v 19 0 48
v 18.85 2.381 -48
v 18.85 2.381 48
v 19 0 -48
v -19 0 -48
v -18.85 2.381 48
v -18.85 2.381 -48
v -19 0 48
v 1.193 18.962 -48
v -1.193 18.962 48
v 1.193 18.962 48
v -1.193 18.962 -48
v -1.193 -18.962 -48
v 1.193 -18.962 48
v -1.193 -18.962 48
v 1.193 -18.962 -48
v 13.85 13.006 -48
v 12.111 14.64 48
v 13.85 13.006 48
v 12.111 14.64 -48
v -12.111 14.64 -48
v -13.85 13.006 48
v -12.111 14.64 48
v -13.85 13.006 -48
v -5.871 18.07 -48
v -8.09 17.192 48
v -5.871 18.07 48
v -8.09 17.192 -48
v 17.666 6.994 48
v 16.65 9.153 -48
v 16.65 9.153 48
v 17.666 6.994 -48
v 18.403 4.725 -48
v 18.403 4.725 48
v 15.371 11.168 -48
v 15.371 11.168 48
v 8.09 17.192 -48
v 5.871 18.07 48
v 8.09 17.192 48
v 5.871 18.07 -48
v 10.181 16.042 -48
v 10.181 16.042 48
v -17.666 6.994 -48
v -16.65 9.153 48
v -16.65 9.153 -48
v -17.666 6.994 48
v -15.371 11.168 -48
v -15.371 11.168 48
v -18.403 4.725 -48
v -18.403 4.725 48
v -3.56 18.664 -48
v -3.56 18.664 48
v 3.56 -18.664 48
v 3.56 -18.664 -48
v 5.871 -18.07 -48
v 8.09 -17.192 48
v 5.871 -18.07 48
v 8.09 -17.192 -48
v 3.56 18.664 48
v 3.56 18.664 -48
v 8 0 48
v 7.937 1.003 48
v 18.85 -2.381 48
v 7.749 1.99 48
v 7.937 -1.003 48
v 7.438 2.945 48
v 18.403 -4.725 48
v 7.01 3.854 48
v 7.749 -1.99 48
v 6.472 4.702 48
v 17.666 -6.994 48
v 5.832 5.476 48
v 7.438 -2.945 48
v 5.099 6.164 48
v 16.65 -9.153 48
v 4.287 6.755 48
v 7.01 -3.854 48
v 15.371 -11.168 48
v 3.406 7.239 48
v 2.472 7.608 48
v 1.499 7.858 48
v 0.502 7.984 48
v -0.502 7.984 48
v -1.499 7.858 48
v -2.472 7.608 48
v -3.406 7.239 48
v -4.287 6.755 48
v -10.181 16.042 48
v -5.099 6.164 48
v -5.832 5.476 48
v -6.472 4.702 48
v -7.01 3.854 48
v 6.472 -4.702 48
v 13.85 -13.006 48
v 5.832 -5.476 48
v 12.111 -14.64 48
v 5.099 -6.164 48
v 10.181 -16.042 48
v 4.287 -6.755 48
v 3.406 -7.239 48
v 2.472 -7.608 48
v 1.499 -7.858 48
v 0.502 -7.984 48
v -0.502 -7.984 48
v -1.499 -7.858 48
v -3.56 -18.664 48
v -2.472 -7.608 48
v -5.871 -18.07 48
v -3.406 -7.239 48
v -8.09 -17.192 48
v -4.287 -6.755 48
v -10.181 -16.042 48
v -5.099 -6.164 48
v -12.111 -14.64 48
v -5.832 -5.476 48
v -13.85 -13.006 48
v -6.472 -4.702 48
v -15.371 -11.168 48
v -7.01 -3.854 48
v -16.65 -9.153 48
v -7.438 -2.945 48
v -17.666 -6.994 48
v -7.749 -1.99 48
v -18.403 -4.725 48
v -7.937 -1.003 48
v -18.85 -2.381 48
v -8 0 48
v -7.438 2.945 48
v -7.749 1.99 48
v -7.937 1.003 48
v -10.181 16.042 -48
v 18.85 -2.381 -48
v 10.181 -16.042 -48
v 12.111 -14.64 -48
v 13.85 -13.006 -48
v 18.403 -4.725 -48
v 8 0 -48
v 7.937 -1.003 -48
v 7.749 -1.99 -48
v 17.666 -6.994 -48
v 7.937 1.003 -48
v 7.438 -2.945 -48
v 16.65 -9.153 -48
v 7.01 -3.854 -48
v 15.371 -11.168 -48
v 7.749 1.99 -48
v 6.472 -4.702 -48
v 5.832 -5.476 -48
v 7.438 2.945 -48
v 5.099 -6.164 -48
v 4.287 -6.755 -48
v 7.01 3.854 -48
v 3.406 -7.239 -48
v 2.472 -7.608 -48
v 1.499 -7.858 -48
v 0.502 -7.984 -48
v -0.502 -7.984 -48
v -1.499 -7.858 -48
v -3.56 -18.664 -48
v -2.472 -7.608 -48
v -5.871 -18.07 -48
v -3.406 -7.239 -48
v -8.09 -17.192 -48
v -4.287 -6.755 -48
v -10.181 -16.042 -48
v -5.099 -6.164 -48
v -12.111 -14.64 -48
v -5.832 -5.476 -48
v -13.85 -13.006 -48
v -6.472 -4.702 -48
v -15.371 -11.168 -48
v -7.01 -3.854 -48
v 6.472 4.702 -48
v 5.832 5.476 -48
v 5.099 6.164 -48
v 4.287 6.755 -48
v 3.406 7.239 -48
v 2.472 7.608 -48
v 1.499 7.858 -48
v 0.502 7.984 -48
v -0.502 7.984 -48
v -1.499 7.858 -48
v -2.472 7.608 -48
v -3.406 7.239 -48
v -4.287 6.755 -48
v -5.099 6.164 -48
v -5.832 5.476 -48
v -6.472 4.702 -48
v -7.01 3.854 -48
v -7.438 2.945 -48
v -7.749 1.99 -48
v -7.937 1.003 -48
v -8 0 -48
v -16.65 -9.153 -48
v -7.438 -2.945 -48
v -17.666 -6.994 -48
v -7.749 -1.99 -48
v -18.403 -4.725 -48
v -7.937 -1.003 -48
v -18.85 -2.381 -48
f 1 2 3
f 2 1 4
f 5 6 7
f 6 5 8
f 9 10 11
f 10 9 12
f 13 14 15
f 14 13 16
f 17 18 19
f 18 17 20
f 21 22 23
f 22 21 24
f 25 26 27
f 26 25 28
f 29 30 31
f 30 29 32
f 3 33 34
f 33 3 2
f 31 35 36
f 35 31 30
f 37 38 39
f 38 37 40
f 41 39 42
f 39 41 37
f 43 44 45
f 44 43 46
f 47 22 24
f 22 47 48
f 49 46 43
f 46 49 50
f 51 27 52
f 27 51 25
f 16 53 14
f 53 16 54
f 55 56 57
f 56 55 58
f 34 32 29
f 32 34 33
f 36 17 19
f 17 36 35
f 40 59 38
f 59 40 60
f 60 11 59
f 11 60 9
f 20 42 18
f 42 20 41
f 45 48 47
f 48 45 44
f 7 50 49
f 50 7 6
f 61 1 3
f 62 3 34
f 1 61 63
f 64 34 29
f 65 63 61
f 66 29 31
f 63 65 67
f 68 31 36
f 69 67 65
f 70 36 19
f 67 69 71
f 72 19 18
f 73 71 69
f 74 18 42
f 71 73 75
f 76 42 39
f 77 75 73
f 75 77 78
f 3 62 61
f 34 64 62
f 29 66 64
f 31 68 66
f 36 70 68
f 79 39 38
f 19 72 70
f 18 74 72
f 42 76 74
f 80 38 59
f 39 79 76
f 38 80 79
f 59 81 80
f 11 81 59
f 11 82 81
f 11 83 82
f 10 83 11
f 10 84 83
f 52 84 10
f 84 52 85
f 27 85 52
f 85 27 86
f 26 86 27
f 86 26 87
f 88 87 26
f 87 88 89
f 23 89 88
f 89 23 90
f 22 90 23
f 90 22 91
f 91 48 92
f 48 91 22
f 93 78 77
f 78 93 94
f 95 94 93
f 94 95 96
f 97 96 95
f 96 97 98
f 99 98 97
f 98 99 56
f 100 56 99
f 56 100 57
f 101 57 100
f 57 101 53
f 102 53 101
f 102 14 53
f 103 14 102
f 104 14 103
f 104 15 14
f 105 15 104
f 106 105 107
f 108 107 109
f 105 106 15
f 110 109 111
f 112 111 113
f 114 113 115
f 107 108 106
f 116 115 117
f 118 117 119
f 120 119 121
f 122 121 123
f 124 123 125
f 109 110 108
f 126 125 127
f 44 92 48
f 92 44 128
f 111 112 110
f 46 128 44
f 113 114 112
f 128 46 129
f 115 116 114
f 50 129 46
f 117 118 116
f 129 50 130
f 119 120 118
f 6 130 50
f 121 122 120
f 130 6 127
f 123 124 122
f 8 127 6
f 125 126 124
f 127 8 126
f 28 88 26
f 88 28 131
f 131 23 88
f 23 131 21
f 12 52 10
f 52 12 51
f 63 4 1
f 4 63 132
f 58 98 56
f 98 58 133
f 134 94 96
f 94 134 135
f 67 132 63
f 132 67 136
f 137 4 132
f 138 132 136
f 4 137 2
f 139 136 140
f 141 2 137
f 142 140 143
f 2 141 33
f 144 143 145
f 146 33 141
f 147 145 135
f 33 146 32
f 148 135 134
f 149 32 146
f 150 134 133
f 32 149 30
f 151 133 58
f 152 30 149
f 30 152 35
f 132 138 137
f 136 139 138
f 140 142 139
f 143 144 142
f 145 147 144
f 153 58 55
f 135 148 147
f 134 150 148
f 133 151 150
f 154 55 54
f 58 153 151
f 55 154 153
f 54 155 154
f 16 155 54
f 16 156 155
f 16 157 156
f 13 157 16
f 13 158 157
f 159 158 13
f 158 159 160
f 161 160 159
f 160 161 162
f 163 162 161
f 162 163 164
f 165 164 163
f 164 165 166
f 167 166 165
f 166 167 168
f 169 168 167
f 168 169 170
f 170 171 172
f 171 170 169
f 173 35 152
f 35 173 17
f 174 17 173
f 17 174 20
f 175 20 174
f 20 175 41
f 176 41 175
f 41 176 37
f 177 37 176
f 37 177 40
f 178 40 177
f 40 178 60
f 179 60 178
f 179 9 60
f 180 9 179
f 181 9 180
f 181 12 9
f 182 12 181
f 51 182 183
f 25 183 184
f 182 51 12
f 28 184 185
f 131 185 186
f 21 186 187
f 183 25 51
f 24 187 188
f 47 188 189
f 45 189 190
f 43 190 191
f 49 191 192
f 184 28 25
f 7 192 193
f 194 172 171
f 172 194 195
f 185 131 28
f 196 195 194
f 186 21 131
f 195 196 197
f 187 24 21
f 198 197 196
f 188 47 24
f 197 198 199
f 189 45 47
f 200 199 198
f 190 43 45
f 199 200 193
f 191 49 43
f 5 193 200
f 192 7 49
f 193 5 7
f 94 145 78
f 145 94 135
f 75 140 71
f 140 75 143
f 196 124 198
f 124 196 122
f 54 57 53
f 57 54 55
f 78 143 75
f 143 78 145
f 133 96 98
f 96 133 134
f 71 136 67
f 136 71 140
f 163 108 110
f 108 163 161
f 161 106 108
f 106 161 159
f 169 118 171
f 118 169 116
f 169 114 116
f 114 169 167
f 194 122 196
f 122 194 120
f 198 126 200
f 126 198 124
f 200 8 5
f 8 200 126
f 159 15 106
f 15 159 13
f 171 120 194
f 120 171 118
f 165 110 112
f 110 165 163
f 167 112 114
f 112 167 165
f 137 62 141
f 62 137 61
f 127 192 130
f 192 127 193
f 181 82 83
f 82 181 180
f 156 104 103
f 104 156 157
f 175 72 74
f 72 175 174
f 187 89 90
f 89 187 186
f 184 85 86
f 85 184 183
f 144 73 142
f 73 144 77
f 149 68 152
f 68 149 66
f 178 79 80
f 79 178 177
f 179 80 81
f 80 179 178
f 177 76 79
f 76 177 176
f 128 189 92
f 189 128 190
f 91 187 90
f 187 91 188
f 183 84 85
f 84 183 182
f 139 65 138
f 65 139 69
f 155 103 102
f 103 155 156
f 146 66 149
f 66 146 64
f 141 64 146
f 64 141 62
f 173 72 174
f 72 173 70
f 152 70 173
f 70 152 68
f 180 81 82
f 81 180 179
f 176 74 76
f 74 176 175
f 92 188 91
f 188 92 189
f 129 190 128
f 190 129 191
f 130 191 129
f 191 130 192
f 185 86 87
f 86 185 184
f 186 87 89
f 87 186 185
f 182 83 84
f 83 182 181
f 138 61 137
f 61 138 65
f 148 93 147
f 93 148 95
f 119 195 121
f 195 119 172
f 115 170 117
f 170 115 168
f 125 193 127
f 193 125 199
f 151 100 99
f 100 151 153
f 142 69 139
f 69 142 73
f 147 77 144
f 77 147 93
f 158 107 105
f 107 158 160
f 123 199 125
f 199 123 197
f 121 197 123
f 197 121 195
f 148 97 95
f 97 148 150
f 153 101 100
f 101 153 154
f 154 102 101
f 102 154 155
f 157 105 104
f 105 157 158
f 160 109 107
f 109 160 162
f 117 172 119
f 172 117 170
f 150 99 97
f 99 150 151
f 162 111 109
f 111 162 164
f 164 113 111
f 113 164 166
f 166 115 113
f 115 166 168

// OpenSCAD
$fn = 50;


difference() {
	union() {
		translate(v = [0, 0, -48.0000000000]) {
			cylinder(h = 96, r = 19.0000000000);
		}
	}
	union() {
		translate(v = [0, 0, -100.0000000000]) {
			cylinder(h = 200, r = 8);
		}
	}
}
